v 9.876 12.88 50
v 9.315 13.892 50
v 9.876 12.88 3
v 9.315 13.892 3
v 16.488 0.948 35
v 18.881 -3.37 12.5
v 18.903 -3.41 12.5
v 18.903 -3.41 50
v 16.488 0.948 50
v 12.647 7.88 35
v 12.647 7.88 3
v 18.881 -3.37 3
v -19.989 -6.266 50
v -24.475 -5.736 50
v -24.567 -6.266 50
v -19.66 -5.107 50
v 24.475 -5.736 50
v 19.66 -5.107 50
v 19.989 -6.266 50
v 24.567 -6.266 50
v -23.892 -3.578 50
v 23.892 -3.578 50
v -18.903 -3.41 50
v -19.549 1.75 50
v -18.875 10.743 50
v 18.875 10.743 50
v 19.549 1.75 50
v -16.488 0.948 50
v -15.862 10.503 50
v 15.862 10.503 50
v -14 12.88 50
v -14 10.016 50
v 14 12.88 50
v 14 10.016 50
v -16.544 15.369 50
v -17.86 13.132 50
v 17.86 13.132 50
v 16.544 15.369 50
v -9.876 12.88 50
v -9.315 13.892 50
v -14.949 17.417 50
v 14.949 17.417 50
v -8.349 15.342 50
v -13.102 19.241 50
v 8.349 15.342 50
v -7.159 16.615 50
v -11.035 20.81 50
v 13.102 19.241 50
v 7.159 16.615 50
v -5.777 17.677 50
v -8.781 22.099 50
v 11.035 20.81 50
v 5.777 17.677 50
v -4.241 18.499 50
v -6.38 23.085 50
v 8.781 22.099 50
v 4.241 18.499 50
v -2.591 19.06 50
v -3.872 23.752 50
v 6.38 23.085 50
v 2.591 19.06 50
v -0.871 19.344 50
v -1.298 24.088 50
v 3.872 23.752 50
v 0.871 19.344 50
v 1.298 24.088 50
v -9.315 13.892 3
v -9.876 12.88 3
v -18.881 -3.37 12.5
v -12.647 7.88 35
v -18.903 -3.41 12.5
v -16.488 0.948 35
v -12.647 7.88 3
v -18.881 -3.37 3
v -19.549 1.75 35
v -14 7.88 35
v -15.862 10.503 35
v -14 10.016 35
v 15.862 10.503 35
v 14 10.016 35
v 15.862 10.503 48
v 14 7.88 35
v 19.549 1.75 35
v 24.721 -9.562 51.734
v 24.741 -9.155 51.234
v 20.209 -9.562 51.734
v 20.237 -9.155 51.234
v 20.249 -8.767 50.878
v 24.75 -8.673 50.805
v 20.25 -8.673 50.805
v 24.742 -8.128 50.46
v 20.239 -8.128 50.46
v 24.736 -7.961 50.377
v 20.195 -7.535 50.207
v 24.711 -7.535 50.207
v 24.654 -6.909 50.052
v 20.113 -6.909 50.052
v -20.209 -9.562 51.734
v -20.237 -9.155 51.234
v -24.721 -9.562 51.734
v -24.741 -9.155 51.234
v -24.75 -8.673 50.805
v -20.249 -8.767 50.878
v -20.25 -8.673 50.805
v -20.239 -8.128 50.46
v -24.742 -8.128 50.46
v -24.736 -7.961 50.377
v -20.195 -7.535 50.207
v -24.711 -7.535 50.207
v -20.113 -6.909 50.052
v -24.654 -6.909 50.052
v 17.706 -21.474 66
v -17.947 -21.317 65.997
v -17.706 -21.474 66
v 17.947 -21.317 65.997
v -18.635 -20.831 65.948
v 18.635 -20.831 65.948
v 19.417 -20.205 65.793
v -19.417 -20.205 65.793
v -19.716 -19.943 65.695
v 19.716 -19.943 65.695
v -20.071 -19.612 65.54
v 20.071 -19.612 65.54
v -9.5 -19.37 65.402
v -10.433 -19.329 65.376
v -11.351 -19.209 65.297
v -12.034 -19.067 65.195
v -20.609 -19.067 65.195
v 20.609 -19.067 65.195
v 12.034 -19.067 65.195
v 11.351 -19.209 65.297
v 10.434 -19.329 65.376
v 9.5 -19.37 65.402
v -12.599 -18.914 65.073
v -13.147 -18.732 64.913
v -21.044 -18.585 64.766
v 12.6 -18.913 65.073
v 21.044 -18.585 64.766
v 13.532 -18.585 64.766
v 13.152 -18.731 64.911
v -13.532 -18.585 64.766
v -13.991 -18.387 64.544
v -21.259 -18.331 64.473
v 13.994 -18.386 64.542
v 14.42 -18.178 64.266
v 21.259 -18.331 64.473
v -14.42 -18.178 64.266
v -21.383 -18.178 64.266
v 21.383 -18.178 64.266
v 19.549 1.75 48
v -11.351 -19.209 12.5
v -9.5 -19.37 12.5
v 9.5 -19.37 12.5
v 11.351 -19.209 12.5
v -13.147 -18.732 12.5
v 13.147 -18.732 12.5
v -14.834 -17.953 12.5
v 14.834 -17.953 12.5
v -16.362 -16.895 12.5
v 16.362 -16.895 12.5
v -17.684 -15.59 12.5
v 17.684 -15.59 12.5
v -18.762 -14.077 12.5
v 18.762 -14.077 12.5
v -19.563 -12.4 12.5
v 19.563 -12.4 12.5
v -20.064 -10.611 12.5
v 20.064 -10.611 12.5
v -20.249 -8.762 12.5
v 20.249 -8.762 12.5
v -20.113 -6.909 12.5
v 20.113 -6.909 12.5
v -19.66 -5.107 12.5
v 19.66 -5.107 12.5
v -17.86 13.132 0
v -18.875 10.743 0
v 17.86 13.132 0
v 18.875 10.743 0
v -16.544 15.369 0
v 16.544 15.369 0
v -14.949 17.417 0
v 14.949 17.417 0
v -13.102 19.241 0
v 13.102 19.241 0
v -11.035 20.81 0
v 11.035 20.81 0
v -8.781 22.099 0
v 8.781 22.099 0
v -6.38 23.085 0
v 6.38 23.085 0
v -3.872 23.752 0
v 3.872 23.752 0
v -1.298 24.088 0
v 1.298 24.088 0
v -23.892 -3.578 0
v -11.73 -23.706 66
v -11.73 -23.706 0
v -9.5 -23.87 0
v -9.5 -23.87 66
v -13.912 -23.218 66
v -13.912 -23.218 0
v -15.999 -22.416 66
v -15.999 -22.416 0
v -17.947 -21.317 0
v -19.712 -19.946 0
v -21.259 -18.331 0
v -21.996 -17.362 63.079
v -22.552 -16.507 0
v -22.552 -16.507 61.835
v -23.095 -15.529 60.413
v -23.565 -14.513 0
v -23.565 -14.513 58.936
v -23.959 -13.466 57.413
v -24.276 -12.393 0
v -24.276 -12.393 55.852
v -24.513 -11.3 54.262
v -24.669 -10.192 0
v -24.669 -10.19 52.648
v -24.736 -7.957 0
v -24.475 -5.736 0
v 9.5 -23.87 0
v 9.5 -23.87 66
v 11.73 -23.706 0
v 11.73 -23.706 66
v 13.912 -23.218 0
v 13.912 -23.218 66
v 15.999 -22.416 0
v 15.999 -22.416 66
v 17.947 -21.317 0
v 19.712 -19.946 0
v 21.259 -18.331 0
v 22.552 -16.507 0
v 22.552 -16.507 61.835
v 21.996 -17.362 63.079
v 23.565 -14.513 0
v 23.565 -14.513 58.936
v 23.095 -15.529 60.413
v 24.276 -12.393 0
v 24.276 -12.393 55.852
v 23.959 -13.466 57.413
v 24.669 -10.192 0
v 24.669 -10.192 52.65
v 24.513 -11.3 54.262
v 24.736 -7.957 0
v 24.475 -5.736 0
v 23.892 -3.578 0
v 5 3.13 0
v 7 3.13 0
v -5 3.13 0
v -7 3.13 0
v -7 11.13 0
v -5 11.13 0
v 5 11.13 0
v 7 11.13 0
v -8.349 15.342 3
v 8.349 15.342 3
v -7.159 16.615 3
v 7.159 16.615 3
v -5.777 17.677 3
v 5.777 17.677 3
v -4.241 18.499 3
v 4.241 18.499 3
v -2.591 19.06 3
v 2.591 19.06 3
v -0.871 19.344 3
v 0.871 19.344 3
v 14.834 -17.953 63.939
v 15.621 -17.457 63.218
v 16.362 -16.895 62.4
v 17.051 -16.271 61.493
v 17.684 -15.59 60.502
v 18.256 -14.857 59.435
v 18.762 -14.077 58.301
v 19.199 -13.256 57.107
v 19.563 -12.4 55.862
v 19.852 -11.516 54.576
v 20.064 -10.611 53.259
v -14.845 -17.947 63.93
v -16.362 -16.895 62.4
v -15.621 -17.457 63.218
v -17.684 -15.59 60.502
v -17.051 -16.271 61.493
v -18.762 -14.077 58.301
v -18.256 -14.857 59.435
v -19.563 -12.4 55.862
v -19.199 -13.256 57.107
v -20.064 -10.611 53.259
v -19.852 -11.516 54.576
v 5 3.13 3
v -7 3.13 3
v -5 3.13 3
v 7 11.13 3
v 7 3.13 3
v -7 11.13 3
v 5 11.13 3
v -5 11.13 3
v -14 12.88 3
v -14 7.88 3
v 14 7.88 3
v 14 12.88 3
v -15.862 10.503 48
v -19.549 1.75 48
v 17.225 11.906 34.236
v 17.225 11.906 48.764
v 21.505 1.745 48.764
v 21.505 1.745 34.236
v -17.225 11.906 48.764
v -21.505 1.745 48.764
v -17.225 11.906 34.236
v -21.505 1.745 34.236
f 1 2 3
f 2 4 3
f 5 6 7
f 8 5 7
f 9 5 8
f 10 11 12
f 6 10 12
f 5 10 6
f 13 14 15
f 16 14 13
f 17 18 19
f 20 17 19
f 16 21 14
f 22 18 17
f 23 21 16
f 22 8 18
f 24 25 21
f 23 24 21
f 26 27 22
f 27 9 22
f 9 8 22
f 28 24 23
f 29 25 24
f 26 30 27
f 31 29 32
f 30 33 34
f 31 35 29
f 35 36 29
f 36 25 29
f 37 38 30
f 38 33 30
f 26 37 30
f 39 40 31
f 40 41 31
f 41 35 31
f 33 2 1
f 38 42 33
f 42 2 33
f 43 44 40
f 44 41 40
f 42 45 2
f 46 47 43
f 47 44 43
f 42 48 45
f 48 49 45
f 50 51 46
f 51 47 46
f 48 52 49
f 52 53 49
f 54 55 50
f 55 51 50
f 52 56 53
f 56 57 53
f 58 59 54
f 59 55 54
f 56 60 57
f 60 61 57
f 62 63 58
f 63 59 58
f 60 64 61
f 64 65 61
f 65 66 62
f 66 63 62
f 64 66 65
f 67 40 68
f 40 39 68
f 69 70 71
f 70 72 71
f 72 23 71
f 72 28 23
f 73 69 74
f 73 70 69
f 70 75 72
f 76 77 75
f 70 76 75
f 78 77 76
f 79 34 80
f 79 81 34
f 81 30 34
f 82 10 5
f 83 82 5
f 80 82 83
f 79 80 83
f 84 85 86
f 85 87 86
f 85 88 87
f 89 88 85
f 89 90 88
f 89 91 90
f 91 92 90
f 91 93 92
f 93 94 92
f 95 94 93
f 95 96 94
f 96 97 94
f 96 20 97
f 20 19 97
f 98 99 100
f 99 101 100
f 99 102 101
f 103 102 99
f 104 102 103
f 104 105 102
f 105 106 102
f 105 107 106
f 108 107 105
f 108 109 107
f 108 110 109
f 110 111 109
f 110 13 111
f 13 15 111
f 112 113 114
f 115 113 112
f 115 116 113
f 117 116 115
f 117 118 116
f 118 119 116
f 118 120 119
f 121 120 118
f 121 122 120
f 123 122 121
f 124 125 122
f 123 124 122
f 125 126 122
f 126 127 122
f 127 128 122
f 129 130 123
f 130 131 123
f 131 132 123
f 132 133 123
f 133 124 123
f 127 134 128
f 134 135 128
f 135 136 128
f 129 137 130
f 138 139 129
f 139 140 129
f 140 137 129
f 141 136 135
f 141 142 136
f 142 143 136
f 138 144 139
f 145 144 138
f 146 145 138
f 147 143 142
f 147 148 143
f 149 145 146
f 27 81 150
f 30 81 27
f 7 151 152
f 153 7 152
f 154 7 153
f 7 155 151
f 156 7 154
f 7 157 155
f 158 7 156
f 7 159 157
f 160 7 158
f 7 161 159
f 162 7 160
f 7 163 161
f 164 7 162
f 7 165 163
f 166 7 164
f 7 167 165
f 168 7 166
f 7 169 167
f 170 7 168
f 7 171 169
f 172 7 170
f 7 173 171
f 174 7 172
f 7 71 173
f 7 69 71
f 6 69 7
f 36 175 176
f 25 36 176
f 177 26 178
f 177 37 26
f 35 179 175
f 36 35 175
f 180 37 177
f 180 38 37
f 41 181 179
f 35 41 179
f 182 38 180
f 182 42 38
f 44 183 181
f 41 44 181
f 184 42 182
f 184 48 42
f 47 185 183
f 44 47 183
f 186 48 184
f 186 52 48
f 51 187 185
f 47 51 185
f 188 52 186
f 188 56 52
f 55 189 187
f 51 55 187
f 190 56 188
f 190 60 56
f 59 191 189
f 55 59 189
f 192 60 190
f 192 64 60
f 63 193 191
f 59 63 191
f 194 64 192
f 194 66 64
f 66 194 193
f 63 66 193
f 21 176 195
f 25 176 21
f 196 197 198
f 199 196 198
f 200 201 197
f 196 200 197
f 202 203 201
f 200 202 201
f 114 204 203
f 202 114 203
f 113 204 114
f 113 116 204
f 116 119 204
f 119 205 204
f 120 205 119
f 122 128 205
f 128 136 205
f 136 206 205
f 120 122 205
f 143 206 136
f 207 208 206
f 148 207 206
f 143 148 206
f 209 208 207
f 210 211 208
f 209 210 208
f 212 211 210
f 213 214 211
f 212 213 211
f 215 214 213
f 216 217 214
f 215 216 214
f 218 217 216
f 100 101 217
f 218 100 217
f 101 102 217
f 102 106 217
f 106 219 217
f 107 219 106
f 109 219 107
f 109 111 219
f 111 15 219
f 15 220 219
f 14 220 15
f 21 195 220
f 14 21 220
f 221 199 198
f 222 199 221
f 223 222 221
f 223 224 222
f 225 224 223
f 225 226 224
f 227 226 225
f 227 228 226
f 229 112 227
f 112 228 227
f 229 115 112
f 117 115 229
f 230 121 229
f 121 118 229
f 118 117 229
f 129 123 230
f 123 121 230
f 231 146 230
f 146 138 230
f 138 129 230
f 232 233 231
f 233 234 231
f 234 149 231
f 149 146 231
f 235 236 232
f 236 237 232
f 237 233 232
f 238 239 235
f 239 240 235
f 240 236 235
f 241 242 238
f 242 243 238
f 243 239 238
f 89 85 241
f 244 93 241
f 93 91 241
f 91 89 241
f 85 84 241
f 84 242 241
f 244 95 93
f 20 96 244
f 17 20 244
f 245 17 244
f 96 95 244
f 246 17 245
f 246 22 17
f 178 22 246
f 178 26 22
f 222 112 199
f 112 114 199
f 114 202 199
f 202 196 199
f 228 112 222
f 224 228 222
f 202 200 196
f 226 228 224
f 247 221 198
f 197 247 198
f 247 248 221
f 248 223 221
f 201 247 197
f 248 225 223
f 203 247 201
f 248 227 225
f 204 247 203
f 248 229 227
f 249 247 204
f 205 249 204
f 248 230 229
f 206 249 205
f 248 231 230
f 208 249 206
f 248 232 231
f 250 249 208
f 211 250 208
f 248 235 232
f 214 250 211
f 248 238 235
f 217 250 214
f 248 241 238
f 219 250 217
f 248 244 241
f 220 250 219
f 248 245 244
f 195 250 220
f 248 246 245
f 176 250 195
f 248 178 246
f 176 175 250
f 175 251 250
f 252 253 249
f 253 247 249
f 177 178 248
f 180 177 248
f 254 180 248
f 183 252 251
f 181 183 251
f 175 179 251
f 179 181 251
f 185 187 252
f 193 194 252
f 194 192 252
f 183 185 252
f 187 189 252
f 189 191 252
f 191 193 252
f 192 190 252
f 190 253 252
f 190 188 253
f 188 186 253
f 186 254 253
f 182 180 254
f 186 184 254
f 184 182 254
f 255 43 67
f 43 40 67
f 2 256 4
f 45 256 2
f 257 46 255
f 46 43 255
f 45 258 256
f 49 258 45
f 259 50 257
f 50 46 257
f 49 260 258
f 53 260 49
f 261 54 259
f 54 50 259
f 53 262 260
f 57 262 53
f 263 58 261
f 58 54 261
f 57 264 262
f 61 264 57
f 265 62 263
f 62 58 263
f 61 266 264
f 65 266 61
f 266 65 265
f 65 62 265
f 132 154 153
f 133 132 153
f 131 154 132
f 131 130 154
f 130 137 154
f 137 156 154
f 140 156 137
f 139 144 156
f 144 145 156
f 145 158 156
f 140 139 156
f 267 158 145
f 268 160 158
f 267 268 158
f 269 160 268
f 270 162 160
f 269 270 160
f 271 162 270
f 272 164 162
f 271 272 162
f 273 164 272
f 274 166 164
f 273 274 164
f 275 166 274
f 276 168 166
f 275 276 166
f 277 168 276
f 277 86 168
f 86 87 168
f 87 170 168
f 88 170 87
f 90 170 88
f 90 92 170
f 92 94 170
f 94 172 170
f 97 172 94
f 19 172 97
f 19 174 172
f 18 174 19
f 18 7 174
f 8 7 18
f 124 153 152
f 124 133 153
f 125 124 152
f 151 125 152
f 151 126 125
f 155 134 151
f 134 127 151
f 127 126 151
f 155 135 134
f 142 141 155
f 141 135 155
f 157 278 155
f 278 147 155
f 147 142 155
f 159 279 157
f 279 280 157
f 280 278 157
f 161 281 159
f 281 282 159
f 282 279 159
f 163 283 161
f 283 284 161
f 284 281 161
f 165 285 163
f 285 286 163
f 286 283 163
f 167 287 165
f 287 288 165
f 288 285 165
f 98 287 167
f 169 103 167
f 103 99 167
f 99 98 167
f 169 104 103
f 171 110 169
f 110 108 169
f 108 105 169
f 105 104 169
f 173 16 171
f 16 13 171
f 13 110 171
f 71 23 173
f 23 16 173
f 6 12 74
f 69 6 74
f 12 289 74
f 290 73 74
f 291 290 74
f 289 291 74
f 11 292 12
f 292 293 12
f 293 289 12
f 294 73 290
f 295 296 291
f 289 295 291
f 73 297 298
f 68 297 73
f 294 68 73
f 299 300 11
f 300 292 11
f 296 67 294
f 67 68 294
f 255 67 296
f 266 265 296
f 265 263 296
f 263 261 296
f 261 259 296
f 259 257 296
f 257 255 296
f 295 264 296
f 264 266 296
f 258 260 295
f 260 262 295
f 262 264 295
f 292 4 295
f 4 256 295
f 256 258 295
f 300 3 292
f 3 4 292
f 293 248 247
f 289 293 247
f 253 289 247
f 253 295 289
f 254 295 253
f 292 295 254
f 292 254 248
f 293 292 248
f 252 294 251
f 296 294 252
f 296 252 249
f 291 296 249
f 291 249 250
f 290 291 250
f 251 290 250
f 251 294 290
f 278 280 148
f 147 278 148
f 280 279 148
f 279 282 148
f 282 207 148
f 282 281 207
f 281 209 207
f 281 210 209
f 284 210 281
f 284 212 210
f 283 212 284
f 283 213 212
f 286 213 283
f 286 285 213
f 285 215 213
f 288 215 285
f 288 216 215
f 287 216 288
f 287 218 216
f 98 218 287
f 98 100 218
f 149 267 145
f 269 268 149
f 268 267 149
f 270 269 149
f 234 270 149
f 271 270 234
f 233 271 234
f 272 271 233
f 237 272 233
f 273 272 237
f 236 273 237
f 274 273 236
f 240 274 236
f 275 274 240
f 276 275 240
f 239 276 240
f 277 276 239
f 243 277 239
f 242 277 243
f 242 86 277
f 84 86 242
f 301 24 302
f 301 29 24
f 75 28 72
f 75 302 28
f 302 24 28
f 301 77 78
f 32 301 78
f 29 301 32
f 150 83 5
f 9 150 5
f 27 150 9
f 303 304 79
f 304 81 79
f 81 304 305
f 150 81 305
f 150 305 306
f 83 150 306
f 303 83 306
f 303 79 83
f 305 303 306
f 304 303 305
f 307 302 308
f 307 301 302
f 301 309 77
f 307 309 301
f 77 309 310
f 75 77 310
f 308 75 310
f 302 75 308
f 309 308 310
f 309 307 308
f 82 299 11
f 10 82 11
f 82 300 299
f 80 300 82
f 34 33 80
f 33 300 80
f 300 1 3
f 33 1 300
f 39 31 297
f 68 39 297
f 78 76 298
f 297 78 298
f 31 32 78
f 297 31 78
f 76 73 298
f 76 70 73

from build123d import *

# Parameters (mm, degrees)
RESSALTO_EXTRUS_O1_DEPTH   = 66
CORTE_EXTRUS_O1_DEPTH      = 53.5
CORTE_EXTRUS_O2_DEPTH      = 9.5
ESBO_O5_W                  = 2
ESBO_O5_H                  = 8
CORTE_EXTRUS_O3_DEPTH      = 72.859720289
CORTE_EXTRUS_O4_DEPTH      = 75.503821379
CORTE_EXTRUS_O4_DEPTH_BACK = 75.503821379
CORTE_EXTRUS_O6_DEPTH      = 15
ESBO_O10_W                 = 13
ESBO_O10_H                 = 9.498093923
CORTE_EXTRUS_O7_DEPTH      = 1.8
CORTE_EXTRUS_O7_DRAFT      = 23
ESBO_O11_W                 = 13
ESBO_O11_H                 = 9.498093923
CORTE_EXTRUS_O8_DEPTH      = 1.8
CORTE_EXTRUS_O8_DRAFT      = 23
FILETE10_START             = -24.75
FILETE10_DEPTH             = 49.5
FILETE11_R                 = 4
FILETE12_R                 = 4
CORTE_EXTRUS_O9_DEPTH      = 47


with BuildPart() as part:
    # Esboço2 → Ressalto-extrusão1 (new body)
    with BuildSketch(Plane.XY):
        with BuildLine():
            Line((18.875125561, 10.742838653), (23.89228324, -3.577710527))
            ThreePointArc((23.89228324, -3.577710527), (21.938999447, -17.442346217), (9.5, -23.87))
            Line((9.5, -23.87), (-9.5, -23.87))
            ThreePointArc((-9.5, -23.87), (-21.938999447, -17.442346217), (-23.89228324, -3.577710527))
            Line((-23.89228324, -3.577710527), (-18.875125561, 10.742838653))
            ThreePointArc((-18.875125561, 10.742838653), (0, 24.13), (18.875125561, 10.742838653))
        make_face()
    extrude(amount=RESSALTO_EXTRUS_O1_DEPTH)

    # Esboço3 → Corte-extrusão1 (cut)
    with BuildSketch(Plane.XY.offset(66)):
        with BuildLine():
            Line((-9.315367954, 13.892017036), (-18.902836198, -3.409513321))
            ThreePointArc((-18.902836198, -3.409513321), (-18.762160434, -14.076636702), (-9.5, -19.37))
            Line((-9.5, -19.37), (9.5, -19.37))
            ThreePointArc((9.5, -19.37), (18.762160434, -14.076636702), (18.902836198, -3.409513321))
            Line((18.902836198, -3.409513321), (9.315367954, 13.892017036))
            ThreePointArc((9.315367954, 13.892017036), (0, 19.38), (-9.315367954, 13.892017036))
        make_face()
    extrude(amount=-CORTE_EXTRUS_O1_DEPTH, mode=Mode.SUBTRACT)

    # Esboço4 → Corte-extrusão2 (cut)
    with BuildSketch(Plane.XY.offset(12.5)):
        with BuildLine():
            Line((-9.315367954, 13.892017036), (-18.88094029, -3.37))
            Line((-18.88094029, -3.37), (18.88094029, -3.37))
            Line((18.88094029, -3.37), (9.315367954, 13.892017036))
            ThreePointArc((9.315367954, 13.892017036), (0, 19.38), (-9.315367954, 13.892017036))
        make_face()
    extrude(amount=-CORTE_EXTRUS_O2_DEPTH, mode=Mode.SUBTRACT)

    # Esboço5 → Corte-extrusão3 (cut, through all)
    with BuildSketch(Plane.XY.offset(3)):
        with Locations((-6, 7.13)):
            Rectangle(ESBO_O5_W, ESBO_O5_H)
        with Locations((6, 7.13)):
            Rectangle(ESBO_O5_W, ESBO_O5_H)
    extrude(amount=-CORTE_EXTRUS_O3_DEPTH, mode=Mode.SUBTRACT)

    # Esboço6 → Corte-extrusão4 (cut, two sides: drawn at the far end of the back side and taken through both)
    with BuildSketch(Plane(origin=(0, 0, 0), x_dir=(0, 0, -1), z_dir=(1, 0, 0)).offset(-CORTE_EXTRUS_O4_DEPTH_BACK)):
        Polygon((-73.252948894, -8.37), (-72.738467135, 18.869608141), (-69.396784042, 24.687681426), (-65.169347817, 25.830591912), (-50, 27.529066054), (-50, -8.37), (-66, -19.37), (-66, -23.87), (-79.476934269, -23.87), (-79.476934269, -8.37), align=None)
    extrude(amount=CORTE_EXTRUS_O4_DEPTH + CORTE_EXTRUS_O4_DEPTH_BACK, mode=Mode.SUBTRACT)

    # Esboço7 → Corte-extrusão6 (cut)
    with BuildSketch(Plane.XY.offset(50)):
        Polygon((0, -3.37), (19.549187838, 1.7499651), (15.86238212, 10.5033217), (2e-09, 6.348937203), (-15.862382121, 10.5033217), (-19.549187841, 1.7499651), align=None)
    extrude(amount=-CORTE_EXTRUS_O6_DEPTH, mode=Mode.SUBTRACT)


with BuildPart() as corte_extrus_o7_tool:
    # Esboço10 → Corte-extrusão7 (with draft: the straight prism first)
    with BuildSketch(Plane(origin=(17.229716404, 7.256943806, 0), x_dir=(0, 0, 1), z_dir=(-0.9215908655875538, -0.3881626932944273, 0))):
        with Locations((41.5, -1.226466591)):
            Rectangle(ESBO_O10_W, ESBO_O10_H)
    extrude(amount=-CORTE_EXTRUS_O7_DEPTH)
    # Corte-extrusão7: the draft: its side faces are tilted about the plane it starts from
    corte_extrus_o7_sides = [corte_extrus_o7_tool.faces().sort_by_distance(p)[0] for p in [
        (16.691813899, 10.852668124, 41.5),
        (18.535216758, 6.475989824, 35),
        (20.378619617, 2.099311524, 41.5),
        (18.535216758, 6.475989824, 48),
    ]]
    draft(corte_extrus_o7_sides, Plane(origin=(17.229716404, 7.256943806, 0), x_dir=(0, 0, 1), z_dir=(-0.9215908655875538, -0.3881626932944273, 0)), CORTE_EXTRUS_O7_DRAFT)


with BuildPart() as part_1:
    add(part.part)

    # Corte-extrusão7: cut by corte_extrus_o7_tool
    add(corte_extrus_o7_tool.part, mode=Mode.SUBTRACT)


with BuildPart() as corte_extrus_o8_tool:
    # Esboço11 → Corte-extrusão8 (with draft: the straight prism first)
    with BuildSketch(Plane(origin=(-17.229716404, 7.256943809, 0), x_dir=(0, 0, -1), z_dir=(0.9215908655337633, -0.3881626934221387, 0))):
        with Locations((-41.5, -1.226466593)):
            Rectangle(ESBO_O11_W, ESBO_O11_H)
    extrude(amount=-CORTE_EXTRUS_O8_DEPTH)
    # Corte-extrusão8: the draft: its side faces are tilted about the plane it starts from
    corte_extrus_o8_sides = [corte_extrus_o8_tool.faces().sort_by_distance(p)[0] for p in [
        (-18.53521676, 6.475989824, 48),
        (-20.37861962, 2.099311524, 41.5),
        (-18.53521676, 6.475989824, 35),
        (-16.6918139, 10.852668124, 41.5),
    ]]
    draft(corte_extrus_o8_sides, Plane(origin=(-17.229716404, 7.256943809, 0), x_dir=(0, 0, -1), z_dir=(0.9215908655337633, -0.3881626934221387, 0)), CORTE_EXTRUS_O8_DRAFT)


with BuildPart() as part_2:
    add(part_1.part)

    # Corte-extrusão8: cut by corte_extrus_o8_tool
    add(corte_extrus_o8_tool.part, mode=Mode.SUBTRACT)

    # Filete10: read off the stored shape, not the designer's step
    # Filete10 outline → Filete10 (cut)
    with BuildSketch(Plane.YZ.offset(FILETE10_START)):
        with BuildLine():
            ThreePointArc((-21.47412196, 66), (-19.611926245, 65.540088576), (-18.177953073, 64.266113561))
            Line((-18.177953073, 64.266113561), (-19.37, 66))
            Line((-19.37, 66), (-21.47412196, 66))
        make_face()
    extrude(amount=FILETE10_DEPTH, mode=Mode.SUBTRACT)

    # Filete11
    filete11_edges = [part_2.edges().sort_by_distance(p)[0] for p in [
        (-22.497521656, -8.37, 50),
    ]]
    fillet(filete11_edges, radius=FILETE11_R)

    # Filete12
    filete12_edges = [part_2.edges().sort_by_distance(p)[0] for p in [
        (22.497521656, -8.37, 50),
    ]]
    fillet(filete12_edges, radius=FILETE12_R)

    # Esboço12 → Corte-extrusão9 (cut)
    with BuildSketch(Plane.XY.offset(50)):
        Polygon((14, 12.88), (14, 7.88), (-14, 7.88), (-14, 12.88), (0, 12.88), align=None)
    extrude(amount=-CORTE_EXTRUS_O9_DEPTH, mode=Mode.SUBTRACT)


solid = part_2.part
